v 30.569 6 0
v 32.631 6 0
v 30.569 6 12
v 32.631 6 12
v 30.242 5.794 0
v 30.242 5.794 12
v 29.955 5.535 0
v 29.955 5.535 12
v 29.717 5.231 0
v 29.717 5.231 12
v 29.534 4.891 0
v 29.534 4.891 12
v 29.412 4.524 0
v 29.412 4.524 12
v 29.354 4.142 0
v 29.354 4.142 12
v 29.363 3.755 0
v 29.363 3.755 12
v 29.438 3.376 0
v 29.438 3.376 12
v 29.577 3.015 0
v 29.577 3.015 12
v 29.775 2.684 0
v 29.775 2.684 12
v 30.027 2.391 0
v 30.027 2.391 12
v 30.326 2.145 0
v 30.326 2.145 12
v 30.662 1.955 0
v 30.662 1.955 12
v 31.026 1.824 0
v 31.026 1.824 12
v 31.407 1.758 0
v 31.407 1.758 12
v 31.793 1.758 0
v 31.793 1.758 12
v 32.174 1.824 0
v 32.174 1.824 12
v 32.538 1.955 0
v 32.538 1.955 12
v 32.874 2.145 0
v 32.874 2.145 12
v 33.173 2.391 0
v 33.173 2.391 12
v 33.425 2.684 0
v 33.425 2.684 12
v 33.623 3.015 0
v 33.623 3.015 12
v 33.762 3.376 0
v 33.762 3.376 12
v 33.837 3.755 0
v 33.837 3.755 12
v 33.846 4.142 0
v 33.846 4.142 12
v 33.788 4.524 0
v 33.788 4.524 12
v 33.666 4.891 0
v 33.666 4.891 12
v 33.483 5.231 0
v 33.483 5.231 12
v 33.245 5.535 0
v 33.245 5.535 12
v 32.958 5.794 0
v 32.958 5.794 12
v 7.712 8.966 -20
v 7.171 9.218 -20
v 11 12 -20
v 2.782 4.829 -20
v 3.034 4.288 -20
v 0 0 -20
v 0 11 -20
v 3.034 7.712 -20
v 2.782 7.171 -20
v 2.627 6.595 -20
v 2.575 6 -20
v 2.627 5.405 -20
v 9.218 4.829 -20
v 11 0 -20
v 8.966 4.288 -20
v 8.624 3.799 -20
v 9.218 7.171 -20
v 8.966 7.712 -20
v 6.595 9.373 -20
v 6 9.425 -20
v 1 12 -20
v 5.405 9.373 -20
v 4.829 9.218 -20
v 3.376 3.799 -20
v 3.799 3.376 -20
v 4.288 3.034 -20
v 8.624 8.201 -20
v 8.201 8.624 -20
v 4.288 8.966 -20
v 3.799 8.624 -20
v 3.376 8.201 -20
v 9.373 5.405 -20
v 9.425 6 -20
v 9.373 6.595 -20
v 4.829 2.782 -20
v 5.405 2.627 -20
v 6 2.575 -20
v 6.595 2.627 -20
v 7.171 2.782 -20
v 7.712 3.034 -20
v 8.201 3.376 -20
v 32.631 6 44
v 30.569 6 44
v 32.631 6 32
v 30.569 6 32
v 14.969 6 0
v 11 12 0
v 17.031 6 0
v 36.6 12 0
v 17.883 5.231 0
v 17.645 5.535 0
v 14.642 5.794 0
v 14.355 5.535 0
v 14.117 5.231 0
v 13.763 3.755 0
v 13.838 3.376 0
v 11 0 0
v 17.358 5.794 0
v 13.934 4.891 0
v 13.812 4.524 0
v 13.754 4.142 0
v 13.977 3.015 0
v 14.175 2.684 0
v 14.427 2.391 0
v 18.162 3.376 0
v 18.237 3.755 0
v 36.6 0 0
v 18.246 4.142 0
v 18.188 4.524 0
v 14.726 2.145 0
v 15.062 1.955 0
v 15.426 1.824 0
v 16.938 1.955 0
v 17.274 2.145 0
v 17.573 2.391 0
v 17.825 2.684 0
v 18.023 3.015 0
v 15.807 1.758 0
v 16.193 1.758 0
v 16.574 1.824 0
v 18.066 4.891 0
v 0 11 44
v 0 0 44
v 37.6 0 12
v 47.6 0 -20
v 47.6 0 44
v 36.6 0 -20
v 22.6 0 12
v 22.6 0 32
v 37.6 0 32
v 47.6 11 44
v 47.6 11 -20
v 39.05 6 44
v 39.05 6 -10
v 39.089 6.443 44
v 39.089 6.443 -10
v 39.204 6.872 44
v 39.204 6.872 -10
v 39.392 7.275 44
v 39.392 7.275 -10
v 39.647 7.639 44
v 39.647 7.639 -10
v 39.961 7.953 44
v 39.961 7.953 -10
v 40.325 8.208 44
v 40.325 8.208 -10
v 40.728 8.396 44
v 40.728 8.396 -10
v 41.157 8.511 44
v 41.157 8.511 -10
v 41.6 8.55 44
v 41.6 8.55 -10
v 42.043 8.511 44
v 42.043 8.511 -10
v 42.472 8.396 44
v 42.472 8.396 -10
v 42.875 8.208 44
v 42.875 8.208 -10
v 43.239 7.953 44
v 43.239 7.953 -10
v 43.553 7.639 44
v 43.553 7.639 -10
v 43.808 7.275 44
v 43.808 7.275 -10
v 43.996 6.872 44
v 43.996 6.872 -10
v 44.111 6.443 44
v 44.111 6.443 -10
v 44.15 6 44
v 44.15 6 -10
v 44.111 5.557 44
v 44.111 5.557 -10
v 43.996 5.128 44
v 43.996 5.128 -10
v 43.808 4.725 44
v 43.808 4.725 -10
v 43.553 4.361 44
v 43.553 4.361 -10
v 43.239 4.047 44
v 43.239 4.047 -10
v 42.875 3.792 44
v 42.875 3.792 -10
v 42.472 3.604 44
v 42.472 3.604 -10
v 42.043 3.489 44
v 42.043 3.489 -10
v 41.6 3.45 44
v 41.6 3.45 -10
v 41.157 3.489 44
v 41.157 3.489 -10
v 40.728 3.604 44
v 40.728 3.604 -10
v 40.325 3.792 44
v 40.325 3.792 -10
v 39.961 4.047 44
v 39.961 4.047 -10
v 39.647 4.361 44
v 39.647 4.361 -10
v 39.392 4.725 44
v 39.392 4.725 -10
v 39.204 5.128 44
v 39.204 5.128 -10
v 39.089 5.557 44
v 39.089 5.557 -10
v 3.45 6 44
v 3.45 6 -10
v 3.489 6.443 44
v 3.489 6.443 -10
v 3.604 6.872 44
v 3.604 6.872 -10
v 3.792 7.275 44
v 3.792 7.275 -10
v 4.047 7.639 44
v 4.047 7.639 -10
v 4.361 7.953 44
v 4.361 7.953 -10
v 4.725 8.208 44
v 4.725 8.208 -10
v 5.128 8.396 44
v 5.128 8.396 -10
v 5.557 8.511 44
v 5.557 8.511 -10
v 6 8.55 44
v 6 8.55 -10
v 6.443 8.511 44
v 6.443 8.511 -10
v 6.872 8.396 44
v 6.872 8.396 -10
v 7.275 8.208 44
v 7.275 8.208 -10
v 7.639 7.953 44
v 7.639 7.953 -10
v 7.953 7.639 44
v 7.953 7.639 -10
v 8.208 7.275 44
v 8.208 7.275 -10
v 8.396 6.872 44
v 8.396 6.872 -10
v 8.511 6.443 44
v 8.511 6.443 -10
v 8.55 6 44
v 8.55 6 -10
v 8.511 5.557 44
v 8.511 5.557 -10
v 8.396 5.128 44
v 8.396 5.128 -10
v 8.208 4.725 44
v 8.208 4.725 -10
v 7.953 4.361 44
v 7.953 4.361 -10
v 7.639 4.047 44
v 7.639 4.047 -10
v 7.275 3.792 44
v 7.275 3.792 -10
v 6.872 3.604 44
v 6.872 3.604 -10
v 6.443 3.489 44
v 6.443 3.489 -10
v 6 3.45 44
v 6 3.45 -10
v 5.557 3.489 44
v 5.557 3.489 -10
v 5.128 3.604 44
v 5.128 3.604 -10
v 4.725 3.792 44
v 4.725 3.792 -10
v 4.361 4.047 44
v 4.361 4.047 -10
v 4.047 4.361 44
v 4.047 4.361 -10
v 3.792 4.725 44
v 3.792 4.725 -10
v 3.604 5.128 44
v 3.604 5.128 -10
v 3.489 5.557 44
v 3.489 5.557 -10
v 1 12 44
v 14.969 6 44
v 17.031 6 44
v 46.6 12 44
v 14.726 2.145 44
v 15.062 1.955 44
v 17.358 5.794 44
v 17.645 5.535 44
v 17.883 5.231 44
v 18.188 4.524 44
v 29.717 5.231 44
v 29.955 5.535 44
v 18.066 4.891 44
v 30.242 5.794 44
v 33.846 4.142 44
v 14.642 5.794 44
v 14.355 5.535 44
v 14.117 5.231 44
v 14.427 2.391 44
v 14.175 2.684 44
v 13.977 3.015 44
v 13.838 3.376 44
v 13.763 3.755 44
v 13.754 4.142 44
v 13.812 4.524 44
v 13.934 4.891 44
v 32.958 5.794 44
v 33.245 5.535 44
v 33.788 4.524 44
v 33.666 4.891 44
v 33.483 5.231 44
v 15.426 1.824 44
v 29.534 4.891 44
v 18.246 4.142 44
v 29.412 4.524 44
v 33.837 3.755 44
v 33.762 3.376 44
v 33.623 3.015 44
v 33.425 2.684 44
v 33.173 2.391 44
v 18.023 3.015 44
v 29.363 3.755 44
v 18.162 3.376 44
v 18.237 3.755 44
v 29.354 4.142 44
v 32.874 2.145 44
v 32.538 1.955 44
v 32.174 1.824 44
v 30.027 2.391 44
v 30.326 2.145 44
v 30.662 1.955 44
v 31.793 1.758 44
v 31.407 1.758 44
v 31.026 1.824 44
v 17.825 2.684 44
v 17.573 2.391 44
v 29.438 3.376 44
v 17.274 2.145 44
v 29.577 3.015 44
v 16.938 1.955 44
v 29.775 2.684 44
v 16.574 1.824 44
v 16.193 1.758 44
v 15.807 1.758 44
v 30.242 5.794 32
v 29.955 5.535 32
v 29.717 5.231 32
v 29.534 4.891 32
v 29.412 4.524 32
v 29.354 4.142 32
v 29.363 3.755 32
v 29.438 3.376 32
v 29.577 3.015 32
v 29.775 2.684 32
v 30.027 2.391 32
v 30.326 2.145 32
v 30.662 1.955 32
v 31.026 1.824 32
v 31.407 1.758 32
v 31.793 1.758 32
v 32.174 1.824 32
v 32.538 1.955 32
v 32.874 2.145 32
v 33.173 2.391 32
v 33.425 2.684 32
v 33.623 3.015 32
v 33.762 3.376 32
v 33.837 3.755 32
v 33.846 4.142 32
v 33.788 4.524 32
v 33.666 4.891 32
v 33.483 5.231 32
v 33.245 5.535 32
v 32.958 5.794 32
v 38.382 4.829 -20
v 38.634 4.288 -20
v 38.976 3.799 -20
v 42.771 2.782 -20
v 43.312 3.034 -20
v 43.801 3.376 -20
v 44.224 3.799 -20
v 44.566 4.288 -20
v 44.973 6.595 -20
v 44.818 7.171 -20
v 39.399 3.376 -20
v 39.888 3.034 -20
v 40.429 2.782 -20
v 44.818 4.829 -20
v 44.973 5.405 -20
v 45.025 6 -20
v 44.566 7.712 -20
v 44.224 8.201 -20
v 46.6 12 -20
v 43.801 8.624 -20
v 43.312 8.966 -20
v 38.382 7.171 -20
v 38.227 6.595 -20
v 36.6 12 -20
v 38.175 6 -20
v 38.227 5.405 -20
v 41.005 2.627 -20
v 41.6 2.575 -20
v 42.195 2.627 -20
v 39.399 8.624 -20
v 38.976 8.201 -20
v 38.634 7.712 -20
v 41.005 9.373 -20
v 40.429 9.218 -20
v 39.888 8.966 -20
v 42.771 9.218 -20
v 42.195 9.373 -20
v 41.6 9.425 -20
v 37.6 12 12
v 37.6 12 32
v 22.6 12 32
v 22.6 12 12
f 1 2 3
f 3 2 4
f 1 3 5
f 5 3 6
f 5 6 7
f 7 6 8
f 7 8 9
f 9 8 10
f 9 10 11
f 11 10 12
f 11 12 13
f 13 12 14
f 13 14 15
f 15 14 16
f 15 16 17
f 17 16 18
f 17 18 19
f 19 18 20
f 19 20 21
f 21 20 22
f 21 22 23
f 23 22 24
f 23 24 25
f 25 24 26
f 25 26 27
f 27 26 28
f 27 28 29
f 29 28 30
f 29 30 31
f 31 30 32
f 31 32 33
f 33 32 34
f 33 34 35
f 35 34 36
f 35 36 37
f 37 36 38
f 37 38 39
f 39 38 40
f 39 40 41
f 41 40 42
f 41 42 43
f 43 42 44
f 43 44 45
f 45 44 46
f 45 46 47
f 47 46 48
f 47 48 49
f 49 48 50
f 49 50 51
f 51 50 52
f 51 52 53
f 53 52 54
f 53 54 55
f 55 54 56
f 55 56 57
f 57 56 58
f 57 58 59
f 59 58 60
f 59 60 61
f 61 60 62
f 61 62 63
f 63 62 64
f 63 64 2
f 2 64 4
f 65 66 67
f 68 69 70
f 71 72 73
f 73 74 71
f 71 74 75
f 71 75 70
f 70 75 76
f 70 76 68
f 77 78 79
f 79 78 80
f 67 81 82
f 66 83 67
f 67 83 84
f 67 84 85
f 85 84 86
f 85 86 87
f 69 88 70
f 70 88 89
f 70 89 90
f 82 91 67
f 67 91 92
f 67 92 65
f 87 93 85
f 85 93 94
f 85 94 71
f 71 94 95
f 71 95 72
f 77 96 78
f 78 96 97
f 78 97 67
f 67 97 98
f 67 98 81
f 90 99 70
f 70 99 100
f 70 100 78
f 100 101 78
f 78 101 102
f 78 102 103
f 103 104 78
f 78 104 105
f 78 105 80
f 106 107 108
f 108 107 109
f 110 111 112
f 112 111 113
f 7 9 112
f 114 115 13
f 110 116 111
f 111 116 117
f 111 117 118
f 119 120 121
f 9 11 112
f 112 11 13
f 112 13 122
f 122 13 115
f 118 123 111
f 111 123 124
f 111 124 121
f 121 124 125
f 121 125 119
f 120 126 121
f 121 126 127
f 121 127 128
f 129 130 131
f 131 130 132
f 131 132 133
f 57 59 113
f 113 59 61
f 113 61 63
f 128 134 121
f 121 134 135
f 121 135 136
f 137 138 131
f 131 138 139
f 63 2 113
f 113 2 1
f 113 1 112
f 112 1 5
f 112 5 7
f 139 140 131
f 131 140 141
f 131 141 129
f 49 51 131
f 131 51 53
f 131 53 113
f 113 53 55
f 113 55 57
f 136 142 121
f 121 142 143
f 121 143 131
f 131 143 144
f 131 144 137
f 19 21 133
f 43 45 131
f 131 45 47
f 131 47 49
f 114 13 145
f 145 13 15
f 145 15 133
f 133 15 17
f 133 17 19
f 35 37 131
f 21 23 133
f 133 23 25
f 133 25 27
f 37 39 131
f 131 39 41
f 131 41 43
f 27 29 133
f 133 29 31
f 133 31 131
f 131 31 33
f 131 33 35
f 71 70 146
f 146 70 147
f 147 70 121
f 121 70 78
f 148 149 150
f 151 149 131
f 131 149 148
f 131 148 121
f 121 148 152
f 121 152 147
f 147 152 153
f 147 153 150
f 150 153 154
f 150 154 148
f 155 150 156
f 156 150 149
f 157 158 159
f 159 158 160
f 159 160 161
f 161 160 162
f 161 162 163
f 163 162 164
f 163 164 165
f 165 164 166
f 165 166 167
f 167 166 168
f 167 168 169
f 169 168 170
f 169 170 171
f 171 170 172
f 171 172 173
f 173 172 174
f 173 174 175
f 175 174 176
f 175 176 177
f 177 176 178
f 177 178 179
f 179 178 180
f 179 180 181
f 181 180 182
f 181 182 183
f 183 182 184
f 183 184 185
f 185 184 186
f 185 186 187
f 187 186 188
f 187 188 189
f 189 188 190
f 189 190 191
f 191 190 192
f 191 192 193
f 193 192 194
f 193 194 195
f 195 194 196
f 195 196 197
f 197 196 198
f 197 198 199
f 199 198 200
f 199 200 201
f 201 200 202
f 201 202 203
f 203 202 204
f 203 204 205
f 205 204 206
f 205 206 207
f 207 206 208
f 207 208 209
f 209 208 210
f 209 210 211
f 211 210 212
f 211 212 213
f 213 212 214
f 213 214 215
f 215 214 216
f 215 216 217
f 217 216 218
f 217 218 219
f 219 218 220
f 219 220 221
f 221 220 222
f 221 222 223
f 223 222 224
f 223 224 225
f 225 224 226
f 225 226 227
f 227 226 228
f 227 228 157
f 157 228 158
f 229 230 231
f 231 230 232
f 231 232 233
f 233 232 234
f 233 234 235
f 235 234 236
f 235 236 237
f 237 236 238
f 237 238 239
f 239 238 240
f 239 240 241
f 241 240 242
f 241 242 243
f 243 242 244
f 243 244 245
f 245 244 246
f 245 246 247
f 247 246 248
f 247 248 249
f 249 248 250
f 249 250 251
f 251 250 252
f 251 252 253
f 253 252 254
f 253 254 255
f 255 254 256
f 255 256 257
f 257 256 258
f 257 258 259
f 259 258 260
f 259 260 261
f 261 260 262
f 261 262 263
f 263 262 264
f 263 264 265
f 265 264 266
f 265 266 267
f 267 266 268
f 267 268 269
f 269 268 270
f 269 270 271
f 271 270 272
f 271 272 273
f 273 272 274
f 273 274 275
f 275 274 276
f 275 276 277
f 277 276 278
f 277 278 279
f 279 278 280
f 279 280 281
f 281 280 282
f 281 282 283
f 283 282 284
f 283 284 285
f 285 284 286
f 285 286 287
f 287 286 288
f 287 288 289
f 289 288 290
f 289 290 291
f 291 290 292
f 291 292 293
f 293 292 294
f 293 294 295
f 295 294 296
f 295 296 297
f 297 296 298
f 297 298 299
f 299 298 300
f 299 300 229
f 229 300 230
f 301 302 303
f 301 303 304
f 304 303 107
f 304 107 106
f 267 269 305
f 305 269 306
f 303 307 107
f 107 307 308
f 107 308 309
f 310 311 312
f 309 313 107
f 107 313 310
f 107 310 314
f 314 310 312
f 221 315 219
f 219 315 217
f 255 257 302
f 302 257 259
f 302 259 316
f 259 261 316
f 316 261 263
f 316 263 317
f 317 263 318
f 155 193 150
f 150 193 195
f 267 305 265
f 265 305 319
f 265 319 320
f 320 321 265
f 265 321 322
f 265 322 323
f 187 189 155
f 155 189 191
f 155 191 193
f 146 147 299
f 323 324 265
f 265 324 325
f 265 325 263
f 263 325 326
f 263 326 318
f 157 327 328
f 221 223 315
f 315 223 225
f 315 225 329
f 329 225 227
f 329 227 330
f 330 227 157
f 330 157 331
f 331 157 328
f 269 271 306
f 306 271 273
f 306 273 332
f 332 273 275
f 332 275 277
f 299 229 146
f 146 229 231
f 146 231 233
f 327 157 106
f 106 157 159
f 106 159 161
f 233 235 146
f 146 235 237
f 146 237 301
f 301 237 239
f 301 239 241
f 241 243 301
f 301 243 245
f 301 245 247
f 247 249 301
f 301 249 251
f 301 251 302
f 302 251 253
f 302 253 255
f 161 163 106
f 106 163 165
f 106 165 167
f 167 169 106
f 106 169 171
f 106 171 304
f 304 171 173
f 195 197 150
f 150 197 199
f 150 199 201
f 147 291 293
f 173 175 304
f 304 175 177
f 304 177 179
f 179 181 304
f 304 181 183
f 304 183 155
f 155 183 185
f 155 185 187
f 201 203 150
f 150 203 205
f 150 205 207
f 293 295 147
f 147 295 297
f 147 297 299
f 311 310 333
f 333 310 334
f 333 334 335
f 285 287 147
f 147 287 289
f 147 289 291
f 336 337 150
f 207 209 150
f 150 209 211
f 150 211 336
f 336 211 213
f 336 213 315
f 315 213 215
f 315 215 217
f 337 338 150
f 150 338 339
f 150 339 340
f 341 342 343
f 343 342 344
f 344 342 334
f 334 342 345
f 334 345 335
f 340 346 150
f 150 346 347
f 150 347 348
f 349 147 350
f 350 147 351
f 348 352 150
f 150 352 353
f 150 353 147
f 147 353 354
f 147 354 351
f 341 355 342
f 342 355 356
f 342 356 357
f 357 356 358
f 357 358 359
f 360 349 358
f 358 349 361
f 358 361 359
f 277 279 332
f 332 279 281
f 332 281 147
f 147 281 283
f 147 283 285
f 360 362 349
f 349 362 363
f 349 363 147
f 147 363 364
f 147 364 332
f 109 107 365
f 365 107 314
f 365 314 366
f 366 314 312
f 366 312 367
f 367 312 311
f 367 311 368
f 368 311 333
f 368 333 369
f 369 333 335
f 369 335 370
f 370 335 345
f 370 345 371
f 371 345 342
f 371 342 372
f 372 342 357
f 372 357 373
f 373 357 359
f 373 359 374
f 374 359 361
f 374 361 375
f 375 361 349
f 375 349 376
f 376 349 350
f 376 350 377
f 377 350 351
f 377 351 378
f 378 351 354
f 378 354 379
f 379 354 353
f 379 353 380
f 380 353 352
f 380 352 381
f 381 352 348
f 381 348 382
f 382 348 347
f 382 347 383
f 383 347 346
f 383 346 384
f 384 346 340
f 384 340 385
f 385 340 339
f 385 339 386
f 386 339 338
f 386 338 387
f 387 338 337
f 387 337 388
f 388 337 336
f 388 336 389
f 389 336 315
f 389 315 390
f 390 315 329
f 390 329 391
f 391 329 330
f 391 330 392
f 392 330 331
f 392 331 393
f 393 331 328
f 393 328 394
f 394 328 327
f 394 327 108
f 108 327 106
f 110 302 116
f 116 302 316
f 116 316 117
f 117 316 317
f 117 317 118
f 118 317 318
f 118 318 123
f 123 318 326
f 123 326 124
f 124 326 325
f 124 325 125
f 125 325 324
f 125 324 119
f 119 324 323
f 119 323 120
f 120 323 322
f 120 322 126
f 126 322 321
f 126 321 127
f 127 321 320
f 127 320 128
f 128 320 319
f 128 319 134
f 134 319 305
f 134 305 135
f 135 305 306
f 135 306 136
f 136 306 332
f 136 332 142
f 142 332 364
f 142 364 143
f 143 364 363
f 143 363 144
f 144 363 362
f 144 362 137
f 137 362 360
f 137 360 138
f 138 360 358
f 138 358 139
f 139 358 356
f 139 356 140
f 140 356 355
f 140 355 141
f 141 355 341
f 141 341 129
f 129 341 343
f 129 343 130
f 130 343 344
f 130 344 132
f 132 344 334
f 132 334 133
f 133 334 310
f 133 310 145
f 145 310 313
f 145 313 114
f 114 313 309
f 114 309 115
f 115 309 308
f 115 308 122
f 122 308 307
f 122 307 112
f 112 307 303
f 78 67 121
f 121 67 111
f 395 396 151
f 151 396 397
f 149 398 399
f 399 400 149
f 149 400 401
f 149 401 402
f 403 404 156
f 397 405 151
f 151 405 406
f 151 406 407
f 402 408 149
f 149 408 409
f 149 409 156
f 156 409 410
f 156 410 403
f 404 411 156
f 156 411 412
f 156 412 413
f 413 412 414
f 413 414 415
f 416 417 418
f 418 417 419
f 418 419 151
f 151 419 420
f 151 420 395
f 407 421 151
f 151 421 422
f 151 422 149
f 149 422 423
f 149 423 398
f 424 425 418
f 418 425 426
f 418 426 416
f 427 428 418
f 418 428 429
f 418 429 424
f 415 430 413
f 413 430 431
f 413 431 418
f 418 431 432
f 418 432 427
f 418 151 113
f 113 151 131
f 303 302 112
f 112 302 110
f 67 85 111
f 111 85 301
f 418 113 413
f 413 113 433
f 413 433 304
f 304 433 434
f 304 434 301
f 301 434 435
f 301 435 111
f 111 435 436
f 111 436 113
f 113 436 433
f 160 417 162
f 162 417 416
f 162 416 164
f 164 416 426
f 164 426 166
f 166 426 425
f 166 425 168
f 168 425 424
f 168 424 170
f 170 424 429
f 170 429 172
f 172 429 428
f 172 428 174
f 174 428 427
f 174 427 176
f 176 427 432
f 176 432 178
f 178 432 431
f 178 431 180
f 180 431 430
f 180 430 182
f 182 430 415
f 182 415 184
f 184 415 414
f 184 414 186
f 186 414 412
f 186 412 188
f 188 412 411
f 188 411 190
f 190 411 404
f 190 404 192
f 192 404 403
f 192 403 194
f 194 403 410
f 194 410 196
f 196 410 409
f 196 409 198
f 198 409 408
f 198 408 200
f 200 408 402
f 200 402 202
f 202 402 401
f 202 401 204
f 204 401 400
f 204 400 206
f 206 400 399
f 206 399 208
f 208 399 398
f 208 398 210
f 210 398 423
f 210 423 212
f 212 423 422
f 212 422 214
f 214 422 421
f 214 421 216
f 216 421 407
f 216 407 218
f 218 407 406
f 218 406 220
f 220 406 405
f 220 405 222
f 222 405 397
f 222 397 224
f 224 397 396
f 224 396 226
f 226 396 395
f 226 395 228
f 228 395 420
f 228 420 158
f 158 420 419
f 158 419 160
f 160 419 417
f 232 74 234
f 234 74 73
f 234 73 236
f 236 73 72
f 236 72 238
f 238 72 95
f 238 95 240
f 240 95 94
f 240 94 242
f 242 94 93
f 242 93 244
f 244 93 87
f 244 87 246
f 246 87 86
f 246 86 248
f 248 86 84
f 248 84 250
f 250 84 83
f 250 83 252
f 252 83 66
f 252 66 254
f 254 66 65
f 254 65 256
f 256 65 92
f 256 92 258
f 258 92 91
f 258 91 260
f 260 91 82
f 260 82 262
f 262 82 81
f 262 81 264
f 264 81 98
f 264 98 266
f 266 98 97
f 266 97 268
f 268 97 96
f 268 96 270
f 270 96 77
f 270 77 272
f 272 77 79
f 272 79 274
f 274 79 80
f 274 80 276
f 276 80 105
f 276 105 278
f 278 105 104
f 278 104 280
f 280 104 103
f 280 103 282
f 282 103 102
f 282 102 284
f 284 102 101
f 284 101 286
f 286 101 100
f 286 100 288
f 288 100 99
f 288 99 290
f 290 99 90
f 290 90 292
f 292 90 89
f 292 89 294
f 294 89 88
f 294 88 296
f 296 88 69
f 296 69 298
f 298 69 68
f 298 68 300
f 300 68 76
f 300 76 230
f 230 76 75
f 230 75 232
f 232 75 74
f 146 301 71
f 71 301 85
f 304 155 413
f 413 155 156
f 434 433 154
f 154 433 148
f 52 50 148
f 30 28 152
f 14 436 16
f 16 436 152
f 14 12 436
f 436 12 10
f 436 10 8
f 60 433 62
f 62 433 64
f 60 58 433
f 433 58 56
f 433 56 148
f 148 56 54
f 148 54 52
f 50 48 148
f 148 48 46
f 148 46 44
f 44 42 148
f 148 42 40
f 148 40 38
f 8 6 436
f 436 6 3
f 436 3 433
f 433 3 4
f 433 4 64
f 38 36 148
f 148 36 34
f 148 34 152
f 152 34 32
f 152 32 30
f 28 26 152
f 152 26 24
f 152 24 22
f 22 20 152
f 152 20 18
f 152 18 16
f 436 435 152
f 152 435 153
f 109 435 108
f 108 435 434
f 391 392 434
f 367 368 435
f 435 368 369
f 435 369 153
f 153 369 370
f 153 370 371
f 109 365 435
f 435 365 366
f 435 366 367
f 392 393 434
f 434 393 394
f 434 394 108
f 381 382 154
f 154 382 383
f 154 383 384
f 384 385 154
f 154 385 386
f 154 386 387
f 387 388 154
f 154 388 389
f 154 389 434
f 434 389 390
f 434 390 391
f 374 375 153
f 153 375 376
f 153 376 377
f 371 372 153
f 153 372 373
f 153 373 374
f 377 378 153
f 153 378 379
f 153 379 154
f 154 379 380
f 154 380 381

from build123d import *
from OCP.BRepFilletAPI import BRepFilletAPI_MakeChamfer

# Parameters (mm, degrees)
BOSS_EXTRUDE1_DEPTH = 44
SKETCH2_R           = 2.25
CUT_EXTRUDE1_DEPTH  = 66.098079849
BOSS_EXTRUDE2_START = 20
BOSS_EXTRUDE2_DEPTH = 20
BOSS_EXTRUDE3_START = -64
BOSS_EXTRUDE3_DEPTH = 64
SKETCH6_W           = 25.6
SKETCH6_H           = 20
CUT_EXTRUDE2_DEPTH  = 66.098079849
CHAMFER1_SIZE       = 10
CHAMFER1_SIZE2      = 0.874886635
CHAMFER2_SIZE       = 1
SKETCH7_W           = 15
SKETCH7_H           = 20
CUT_EXTRUDE3_DEPTH  = 66.922378598


with BuildPart() as part:
    # Sketch1 → Boss-Extrude1 (new body)
    with BuildSketch(Plane.XY):
        with BuildLine():
            Line((0, 0), (47.6, 0))
            Line((47.6, 0), (47.6, 6))
            Line((47.6, 6), (44.15, 6))
            ThreePointArc((44.15, 6), (41.6, 3.45), (39.05, 6))
            Line((39.05, 6), (8.55, 6))
            ThreePointArc((8.55, 6), (6, 3.45), (3.45, 6))
            Line((3.45, 6), (0, 6))
            Line((0, 6), (0, 0))
        make_face()
    extrude(amount=BOSS_EXTRUDE1_DEPTH)

    # Sketch2 → Cut-Extrude1 (cut, through all)
    with BuildSketch(Plane.XY.offset(44)):
        with Locations((16, 4)):
            Circle(SKETCH2_R)
        with Locations((31.6, 4)):
            Circle(SKETCH2_R)
    extrude(amount=-CUT_EXTRUDE1_DEPTH, mode=Mode.SUBTRACT)

    # Sketch4 → Boss-Extrude2 (add)
    with BuildSketch(Plane(origin=(0, 0, 0), x_dir=(-1, 0, 0), z_dir=(0, 0, -1)).offset(BOSS_EXTRUDE2_START)):
        with BuildLine():
            Line((-11, 6), (-11, 0))
            Line((-11, 0), (0, 0))
            Line((0, 0), (0, 6))
            Line((0, 6), (-3.45, 6))
            ThreePointArc((-3.45, 6), (-6, 3.45), (-8.55, 6))
            Line((-8.55, 6), (-11, 6))
        make_face()
        with BuildLine():
            Line((-36.6, 6), (-36.6, 0))
            Line((-36.6, 0), (-47.6, 0))
            Line((-47.6, 0), (-47.6, 6))
            Line((-47.6, 6), (-44.15, 6))
            ThreePointArc((-44.15, 6), (-41.6, 3.45), (-39.05, 6))
            Line((-39.05, 6), (-36.6, 6))
        make_face()
    extrude(amount=-BOSS_EXTRUDE2_DEPTH)

    # Sketch5 → Boss-Extrude3 (add)
    with BuildSketch(Plane.XY.offset(44).offset(BOSS_EXTRUDE3_START)):
        with BuildLine():
            Line((0, 6), (0, 12))
            Line((0, 12), (47.6, 12))
            Line((47.6, 12), (47.6, 6))
            Line((47.6, 6), (44.15, 6))
            ThreePointArc((44.15, 6), (41.6, 8.55), (39.05, 6))
            Line((39.05, 6), (8.55, 6))
            ThreePointArc((8.55, 6), (6, 8.55), (3.45, 6))
            Line((3.45, 6), (0, 6))
        make_face()
    extrude(amount=BOSS_EXTRUDE3_DEPTH)

    # Sketch6 → Cut-Extrude2 (cut, through all)
    with BuildSketch(Plane.XZ.offset(-6)):
        with Locations((23.8, -10)):
            Rectangle(SKETCH6_W, SKETCH6_H)
    extrude(amount=-CUT_EXTRUDE2_DEPTH, mode=Mode.SUBTRACT)

    # Chamfer1: one chamfer whose edges measure the first distance from different faces: ONE call of the kernel's chamfer builder (chamfer() names one face for all edges)
    chamfer1_edges_1 = [part.edges().sort_by_distance(p)[0] for p in [
        (6, 3.45, -20),
    ]]
    chamfer1_side_1 = [part.faces().sort_by_distance(p)[0] for p in [
        (6, 3.45, 12),
    ]]
    chamfer1_edges_2 = [part.edges().sort_by_distance(p)[0] for p in [
        (41.6, 8.55, -20),
    ]]
    chamfer1_side_2 = [part.faces().sort_by_distance(p)[0] for p in [
        (41.6, 8.55, 12),
    ]]
    chamfer1 = BRepFilletAPI_MakeChamfer(part.part.solid().wrapped)
    for e in chamfer1_edges_1:
        chamfer1.Add(CHAMFER1_SIZE, CHAMFER1_SIZE2, e.wrapped, chamfer1_side_1[0].wrapped)  # the first distance lies on this face
    for e in chamfer1_edges_2:
        chamfer1.Add(CHAMFER1_SIZE, CHAMFER1_SIZE2, e.wrapped, chamfer1_side_2[0].wrapped)  # the first distance lies on this face
    add(Compound.cast(chamfer1.Shape()), mode=Mode.REPLACE)

    # Chamfer2
    chamfer2_edges = [part.edges().sort_by_distance(p)[0] for p in [
        (47.6, 12, 12),
        (0, 12, 12),
    ]]
    chamfer(chamfer2_edges, length=CHAMFER2_SIZE)

    # Sketch7 → Cut-Extrude3 (cut, through all)
    with BuildSketch(Plane.XZ):
        with Locations((30.1, 22)):
            Rectangle(SKETCH7_W, SKETCH7_H)
    extrude(amount=-CUT_EXTRUDE3_DEPTH, mode=Mode.SUBTRACT)


solid = part.part
